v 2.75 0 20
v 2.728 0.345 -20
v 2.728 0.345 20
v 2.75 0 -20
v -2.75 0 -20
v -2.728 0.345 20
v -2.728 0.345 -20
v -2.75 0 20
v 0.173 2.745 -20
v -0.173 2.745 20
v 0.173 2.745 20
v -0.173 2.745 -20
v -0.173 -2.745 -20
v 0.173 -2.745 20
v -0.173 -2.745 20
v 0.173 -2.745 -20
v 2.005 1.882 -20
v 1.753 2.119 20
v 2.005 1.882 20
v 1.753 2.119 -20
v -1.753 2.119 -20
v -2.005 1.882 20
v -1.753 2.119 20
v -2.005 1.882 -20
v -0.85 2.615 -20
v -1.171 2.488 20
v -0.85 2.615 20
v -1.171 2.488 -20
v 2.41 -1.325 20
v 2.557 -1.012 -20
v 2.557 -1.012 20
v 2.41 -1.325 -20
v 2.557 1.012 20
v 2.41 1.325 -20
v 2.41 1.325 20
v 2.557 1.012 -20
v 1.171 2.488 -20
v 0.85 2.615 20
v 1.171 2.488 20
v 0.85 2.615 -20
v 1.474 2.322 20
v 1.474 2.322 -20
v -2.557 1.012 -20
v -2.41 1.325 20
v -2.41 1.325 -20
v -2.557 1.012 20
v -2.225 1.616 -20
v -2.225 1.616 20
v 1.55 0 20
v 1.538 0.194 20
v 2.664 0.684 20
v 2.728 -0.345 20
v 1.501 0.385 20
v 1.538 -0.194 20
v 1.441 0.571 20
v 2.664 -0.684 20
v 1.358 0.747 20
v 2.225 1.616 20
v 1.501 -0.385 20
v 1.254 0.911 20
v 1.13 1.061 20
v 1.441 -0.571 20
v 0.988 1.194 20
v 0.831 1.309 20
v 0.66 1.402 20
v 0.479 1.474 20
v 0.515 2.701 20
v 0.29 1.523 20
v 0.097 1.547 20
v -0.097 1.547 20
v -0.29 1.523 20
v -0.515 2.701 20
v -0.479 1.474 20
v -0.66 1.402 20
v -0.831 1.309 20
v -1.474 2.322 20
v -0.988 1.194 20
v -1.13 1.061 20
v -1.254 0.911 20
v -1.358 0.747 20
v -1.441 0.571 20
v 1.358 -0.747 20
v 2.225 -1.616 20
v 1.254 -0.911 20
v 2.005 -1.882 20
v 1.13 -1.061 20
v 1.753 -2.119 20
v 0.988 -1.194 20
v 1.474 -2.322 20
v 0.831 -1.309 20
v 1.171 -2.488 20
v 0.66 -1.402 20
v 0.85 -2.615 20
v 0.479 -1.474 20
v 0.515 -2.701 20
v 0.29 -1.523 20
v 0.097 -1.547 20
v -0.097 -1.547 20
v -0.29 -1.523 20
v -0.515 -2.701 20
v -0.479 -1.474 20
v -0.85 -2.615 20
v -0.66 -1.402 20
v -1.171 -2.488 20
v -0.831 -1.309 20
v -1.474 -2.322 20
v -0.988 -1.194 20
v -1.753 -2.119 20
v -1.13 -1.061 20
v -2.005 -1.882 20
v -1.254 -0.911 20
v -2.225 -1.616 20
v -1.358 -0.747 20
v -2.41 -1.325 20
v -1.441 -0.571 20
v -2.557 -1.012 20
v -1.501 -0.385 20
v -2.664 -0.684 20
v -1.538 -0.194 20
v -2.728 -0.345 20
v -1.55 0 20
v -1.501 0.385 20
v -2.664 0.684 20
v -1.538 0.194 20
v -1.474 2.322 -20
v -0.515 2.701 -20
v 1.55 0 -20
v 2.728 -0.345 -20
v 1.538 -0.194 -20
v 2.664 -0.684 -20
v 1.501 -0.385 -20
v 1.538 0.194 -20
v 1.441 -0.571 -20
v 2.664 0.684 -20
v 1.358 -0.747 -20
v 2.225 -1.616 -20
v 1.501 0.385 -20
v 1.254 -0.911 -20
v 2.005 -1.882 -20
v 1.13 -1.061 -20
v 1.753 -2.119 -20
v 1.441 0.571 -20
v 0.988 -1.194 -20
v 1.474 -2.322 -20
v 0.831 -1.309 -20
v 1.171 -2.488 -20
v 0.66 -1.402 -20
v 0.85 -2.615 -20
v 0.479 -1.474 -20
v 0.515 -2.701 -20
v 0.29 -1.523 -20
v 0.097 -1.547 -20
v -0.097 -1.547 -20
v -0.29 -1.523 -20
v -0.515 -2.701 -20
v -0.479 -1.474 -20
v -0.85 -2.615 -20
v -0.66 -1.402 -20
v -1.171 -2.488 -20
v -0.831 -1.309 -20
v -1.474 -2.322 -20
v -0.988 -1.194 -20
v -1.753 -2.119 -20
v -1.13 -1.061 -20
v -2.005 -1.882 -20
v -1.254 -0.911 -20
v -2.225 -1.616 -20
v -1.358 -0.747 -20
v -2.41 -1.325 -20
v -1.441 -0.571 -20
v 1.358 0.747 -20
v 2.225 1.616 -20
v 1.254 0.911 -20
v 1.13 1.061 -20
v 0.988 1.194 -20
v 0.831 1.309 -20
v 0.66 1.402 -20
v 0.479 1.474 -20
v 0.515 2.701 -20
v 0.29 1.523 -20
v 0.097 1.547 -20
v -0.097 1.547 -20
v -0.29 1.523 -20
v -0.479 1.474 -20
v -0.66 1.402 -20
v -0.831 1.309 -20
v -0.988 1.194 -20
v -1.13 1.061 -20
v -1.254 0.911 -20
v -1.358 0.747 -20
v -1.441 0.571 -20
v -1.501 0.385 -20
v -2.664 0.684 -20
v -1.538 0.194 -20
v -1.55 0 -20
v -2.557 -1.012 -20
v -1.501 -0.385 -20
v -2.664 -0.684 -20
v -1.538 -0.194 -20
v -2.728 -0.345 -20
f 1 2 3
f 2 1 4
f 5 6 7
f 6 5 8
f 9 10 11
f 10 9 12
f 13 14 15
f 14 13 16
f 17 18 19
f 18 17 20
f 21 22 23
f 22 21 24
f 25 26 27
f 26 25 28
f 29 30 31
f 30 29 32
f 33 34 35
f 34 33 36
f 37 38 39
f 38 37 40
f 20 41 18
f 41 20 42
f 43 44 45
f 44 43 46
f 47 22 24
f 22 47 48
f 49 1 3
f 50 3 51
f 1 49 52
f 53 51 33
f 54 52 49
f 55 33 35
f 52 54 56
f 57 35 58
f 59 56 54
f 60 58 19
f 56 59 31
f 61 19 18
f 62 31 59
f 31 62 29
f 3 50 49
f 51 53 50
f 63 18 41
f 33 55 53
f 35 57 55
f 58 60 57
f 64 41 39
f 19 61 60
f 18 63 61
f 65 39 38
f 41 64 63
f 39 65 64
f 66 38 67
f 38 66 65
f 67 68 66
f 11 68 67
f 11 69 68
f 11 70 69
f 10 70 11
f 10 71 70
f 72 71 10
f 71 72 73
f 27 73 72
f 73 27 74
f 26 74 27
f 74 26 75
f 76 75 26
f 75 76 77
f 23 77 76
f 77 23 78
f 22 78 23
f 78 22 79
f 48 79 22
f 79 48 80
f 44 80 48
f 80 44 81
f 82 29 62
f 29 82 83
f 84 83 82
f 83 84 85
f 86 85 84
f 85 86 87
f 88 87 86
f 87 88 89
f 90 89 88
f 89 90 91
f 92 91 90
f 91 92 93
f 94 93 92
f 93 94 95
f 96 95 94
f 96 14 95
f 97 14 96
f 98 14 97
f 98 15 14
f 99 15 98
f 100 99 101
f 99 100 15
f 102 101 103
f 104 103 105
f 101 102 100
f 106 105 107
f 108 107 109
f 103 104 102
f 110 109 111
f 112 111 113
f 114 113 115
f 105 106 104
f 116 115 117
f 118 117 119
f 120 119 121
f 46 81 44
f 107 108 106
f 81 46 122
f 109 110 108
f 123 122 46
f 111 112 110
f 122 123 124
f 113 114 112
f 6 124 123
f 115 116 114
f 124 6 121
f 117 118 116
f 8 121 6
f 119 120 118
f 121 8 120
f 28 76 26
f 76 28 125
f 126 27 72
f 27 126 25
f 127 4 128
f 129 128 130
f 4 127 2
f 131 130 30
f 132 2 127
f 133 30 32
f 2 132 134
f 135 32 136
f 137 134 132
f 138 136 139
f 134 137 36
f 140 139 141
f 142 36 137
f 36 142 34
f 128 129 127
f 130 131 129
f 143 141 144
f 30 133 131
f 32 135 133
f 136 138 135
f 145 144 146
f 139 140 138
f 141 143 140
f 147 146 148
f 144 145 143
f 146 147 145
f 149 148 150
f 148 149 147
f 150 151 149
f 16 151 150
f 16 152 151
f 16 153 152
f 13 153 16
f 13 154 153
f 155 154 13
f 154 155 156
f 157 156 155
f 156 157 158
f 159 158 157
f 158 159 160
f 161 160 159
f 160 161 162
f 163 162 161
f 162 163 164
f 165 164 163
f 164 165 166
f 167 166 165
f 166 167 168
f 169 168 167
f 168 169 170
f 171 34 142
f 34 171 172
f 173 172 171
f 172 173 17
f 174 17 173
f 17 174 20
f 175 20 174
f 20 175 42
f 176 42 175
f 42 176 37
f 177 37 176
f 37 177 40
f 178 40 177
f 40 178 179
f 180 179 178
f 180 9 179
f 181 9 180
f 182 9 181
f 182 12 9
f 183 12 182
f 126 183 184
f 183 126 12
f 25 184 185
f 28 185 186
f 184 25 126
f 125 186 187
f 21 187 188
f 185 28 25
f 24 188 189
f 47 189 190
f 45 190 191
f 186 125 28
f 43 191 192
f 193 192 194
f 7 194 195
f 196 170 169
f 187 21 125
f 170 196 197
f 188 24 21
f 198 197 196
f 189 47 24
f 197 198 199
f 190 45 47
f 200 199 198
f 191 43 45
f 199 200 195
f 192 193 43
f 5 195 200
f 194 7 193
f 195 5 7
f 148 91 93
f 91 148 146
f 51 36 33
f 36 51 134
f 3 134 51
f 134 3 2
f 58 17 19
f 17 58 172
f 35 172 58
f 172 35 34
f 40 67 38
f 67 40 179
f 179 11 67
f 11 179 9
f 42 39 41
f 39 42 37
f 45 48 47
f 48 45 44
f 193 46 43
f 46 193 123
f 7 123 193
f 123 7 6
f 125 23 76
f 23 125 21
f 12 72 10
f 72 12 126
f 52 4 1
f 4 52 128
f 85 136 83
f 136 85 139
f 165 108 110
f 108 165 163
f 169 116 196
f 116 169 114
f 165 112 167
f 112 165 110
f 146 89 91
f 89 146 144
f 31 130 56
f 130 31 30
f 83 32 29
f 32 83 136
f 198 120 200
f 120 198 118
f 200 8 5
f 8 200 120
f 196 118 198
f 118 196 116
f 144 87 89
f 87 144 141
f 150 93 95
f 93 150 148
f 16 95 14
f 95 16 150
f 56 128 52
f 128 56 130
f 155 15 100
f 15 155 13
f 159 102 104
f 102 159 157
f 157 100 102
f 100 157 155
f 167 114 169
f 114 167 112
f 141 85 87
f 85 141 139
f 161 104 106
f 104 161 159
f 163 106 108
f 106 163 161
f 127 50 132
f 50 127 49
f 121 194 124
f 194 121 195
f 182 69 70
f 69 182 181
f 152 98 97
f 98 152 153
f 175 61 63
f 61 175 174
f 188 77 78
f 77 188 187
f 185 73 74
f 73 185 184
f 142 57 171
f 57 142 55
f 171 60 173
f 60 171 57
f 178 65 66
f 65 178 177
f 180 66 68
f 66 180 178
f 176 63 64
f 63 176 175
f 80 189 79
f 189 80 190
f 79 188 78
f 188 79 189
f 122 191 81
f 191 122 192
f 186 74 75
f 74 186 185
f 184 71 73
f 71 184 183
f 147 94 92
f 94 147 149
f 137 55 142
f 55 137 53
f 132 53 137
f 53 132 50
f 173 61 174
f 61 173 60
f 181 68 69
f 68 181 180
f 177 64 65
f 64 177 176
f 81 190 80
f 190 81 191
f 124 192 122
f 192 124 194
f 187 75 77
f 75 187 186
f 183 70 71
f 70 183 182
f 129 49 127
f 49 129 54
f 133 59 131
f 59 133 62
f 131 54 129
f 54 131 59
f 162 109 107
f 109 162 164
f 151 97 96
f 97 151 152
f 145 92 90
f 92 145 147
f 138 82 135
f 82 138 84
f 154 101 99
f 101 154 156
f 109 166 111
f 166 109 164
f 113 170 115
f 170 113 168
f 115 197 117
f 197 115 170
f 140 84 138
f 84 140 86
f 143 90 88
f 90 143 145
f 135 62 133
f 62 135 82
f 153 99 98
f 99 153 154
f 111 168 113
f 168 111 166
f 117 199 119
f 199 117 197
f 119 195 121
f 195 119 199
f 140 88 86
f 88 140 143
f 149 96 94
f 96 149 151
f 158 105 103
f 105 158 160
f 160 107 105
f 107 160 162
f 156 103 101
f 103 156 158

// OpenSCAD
$fn = 50;


difference() {
	union() {
		translate(v = [0, 0, -20.0000000000]) {
			cylinder(h = 40, r = 2.7500000000);
		}
	}
	union() {
		translate(v = [0, 0, -100.0000000000]) {
			cylinder(h = 200, r = 1.5500000000);
		}
	}
}
